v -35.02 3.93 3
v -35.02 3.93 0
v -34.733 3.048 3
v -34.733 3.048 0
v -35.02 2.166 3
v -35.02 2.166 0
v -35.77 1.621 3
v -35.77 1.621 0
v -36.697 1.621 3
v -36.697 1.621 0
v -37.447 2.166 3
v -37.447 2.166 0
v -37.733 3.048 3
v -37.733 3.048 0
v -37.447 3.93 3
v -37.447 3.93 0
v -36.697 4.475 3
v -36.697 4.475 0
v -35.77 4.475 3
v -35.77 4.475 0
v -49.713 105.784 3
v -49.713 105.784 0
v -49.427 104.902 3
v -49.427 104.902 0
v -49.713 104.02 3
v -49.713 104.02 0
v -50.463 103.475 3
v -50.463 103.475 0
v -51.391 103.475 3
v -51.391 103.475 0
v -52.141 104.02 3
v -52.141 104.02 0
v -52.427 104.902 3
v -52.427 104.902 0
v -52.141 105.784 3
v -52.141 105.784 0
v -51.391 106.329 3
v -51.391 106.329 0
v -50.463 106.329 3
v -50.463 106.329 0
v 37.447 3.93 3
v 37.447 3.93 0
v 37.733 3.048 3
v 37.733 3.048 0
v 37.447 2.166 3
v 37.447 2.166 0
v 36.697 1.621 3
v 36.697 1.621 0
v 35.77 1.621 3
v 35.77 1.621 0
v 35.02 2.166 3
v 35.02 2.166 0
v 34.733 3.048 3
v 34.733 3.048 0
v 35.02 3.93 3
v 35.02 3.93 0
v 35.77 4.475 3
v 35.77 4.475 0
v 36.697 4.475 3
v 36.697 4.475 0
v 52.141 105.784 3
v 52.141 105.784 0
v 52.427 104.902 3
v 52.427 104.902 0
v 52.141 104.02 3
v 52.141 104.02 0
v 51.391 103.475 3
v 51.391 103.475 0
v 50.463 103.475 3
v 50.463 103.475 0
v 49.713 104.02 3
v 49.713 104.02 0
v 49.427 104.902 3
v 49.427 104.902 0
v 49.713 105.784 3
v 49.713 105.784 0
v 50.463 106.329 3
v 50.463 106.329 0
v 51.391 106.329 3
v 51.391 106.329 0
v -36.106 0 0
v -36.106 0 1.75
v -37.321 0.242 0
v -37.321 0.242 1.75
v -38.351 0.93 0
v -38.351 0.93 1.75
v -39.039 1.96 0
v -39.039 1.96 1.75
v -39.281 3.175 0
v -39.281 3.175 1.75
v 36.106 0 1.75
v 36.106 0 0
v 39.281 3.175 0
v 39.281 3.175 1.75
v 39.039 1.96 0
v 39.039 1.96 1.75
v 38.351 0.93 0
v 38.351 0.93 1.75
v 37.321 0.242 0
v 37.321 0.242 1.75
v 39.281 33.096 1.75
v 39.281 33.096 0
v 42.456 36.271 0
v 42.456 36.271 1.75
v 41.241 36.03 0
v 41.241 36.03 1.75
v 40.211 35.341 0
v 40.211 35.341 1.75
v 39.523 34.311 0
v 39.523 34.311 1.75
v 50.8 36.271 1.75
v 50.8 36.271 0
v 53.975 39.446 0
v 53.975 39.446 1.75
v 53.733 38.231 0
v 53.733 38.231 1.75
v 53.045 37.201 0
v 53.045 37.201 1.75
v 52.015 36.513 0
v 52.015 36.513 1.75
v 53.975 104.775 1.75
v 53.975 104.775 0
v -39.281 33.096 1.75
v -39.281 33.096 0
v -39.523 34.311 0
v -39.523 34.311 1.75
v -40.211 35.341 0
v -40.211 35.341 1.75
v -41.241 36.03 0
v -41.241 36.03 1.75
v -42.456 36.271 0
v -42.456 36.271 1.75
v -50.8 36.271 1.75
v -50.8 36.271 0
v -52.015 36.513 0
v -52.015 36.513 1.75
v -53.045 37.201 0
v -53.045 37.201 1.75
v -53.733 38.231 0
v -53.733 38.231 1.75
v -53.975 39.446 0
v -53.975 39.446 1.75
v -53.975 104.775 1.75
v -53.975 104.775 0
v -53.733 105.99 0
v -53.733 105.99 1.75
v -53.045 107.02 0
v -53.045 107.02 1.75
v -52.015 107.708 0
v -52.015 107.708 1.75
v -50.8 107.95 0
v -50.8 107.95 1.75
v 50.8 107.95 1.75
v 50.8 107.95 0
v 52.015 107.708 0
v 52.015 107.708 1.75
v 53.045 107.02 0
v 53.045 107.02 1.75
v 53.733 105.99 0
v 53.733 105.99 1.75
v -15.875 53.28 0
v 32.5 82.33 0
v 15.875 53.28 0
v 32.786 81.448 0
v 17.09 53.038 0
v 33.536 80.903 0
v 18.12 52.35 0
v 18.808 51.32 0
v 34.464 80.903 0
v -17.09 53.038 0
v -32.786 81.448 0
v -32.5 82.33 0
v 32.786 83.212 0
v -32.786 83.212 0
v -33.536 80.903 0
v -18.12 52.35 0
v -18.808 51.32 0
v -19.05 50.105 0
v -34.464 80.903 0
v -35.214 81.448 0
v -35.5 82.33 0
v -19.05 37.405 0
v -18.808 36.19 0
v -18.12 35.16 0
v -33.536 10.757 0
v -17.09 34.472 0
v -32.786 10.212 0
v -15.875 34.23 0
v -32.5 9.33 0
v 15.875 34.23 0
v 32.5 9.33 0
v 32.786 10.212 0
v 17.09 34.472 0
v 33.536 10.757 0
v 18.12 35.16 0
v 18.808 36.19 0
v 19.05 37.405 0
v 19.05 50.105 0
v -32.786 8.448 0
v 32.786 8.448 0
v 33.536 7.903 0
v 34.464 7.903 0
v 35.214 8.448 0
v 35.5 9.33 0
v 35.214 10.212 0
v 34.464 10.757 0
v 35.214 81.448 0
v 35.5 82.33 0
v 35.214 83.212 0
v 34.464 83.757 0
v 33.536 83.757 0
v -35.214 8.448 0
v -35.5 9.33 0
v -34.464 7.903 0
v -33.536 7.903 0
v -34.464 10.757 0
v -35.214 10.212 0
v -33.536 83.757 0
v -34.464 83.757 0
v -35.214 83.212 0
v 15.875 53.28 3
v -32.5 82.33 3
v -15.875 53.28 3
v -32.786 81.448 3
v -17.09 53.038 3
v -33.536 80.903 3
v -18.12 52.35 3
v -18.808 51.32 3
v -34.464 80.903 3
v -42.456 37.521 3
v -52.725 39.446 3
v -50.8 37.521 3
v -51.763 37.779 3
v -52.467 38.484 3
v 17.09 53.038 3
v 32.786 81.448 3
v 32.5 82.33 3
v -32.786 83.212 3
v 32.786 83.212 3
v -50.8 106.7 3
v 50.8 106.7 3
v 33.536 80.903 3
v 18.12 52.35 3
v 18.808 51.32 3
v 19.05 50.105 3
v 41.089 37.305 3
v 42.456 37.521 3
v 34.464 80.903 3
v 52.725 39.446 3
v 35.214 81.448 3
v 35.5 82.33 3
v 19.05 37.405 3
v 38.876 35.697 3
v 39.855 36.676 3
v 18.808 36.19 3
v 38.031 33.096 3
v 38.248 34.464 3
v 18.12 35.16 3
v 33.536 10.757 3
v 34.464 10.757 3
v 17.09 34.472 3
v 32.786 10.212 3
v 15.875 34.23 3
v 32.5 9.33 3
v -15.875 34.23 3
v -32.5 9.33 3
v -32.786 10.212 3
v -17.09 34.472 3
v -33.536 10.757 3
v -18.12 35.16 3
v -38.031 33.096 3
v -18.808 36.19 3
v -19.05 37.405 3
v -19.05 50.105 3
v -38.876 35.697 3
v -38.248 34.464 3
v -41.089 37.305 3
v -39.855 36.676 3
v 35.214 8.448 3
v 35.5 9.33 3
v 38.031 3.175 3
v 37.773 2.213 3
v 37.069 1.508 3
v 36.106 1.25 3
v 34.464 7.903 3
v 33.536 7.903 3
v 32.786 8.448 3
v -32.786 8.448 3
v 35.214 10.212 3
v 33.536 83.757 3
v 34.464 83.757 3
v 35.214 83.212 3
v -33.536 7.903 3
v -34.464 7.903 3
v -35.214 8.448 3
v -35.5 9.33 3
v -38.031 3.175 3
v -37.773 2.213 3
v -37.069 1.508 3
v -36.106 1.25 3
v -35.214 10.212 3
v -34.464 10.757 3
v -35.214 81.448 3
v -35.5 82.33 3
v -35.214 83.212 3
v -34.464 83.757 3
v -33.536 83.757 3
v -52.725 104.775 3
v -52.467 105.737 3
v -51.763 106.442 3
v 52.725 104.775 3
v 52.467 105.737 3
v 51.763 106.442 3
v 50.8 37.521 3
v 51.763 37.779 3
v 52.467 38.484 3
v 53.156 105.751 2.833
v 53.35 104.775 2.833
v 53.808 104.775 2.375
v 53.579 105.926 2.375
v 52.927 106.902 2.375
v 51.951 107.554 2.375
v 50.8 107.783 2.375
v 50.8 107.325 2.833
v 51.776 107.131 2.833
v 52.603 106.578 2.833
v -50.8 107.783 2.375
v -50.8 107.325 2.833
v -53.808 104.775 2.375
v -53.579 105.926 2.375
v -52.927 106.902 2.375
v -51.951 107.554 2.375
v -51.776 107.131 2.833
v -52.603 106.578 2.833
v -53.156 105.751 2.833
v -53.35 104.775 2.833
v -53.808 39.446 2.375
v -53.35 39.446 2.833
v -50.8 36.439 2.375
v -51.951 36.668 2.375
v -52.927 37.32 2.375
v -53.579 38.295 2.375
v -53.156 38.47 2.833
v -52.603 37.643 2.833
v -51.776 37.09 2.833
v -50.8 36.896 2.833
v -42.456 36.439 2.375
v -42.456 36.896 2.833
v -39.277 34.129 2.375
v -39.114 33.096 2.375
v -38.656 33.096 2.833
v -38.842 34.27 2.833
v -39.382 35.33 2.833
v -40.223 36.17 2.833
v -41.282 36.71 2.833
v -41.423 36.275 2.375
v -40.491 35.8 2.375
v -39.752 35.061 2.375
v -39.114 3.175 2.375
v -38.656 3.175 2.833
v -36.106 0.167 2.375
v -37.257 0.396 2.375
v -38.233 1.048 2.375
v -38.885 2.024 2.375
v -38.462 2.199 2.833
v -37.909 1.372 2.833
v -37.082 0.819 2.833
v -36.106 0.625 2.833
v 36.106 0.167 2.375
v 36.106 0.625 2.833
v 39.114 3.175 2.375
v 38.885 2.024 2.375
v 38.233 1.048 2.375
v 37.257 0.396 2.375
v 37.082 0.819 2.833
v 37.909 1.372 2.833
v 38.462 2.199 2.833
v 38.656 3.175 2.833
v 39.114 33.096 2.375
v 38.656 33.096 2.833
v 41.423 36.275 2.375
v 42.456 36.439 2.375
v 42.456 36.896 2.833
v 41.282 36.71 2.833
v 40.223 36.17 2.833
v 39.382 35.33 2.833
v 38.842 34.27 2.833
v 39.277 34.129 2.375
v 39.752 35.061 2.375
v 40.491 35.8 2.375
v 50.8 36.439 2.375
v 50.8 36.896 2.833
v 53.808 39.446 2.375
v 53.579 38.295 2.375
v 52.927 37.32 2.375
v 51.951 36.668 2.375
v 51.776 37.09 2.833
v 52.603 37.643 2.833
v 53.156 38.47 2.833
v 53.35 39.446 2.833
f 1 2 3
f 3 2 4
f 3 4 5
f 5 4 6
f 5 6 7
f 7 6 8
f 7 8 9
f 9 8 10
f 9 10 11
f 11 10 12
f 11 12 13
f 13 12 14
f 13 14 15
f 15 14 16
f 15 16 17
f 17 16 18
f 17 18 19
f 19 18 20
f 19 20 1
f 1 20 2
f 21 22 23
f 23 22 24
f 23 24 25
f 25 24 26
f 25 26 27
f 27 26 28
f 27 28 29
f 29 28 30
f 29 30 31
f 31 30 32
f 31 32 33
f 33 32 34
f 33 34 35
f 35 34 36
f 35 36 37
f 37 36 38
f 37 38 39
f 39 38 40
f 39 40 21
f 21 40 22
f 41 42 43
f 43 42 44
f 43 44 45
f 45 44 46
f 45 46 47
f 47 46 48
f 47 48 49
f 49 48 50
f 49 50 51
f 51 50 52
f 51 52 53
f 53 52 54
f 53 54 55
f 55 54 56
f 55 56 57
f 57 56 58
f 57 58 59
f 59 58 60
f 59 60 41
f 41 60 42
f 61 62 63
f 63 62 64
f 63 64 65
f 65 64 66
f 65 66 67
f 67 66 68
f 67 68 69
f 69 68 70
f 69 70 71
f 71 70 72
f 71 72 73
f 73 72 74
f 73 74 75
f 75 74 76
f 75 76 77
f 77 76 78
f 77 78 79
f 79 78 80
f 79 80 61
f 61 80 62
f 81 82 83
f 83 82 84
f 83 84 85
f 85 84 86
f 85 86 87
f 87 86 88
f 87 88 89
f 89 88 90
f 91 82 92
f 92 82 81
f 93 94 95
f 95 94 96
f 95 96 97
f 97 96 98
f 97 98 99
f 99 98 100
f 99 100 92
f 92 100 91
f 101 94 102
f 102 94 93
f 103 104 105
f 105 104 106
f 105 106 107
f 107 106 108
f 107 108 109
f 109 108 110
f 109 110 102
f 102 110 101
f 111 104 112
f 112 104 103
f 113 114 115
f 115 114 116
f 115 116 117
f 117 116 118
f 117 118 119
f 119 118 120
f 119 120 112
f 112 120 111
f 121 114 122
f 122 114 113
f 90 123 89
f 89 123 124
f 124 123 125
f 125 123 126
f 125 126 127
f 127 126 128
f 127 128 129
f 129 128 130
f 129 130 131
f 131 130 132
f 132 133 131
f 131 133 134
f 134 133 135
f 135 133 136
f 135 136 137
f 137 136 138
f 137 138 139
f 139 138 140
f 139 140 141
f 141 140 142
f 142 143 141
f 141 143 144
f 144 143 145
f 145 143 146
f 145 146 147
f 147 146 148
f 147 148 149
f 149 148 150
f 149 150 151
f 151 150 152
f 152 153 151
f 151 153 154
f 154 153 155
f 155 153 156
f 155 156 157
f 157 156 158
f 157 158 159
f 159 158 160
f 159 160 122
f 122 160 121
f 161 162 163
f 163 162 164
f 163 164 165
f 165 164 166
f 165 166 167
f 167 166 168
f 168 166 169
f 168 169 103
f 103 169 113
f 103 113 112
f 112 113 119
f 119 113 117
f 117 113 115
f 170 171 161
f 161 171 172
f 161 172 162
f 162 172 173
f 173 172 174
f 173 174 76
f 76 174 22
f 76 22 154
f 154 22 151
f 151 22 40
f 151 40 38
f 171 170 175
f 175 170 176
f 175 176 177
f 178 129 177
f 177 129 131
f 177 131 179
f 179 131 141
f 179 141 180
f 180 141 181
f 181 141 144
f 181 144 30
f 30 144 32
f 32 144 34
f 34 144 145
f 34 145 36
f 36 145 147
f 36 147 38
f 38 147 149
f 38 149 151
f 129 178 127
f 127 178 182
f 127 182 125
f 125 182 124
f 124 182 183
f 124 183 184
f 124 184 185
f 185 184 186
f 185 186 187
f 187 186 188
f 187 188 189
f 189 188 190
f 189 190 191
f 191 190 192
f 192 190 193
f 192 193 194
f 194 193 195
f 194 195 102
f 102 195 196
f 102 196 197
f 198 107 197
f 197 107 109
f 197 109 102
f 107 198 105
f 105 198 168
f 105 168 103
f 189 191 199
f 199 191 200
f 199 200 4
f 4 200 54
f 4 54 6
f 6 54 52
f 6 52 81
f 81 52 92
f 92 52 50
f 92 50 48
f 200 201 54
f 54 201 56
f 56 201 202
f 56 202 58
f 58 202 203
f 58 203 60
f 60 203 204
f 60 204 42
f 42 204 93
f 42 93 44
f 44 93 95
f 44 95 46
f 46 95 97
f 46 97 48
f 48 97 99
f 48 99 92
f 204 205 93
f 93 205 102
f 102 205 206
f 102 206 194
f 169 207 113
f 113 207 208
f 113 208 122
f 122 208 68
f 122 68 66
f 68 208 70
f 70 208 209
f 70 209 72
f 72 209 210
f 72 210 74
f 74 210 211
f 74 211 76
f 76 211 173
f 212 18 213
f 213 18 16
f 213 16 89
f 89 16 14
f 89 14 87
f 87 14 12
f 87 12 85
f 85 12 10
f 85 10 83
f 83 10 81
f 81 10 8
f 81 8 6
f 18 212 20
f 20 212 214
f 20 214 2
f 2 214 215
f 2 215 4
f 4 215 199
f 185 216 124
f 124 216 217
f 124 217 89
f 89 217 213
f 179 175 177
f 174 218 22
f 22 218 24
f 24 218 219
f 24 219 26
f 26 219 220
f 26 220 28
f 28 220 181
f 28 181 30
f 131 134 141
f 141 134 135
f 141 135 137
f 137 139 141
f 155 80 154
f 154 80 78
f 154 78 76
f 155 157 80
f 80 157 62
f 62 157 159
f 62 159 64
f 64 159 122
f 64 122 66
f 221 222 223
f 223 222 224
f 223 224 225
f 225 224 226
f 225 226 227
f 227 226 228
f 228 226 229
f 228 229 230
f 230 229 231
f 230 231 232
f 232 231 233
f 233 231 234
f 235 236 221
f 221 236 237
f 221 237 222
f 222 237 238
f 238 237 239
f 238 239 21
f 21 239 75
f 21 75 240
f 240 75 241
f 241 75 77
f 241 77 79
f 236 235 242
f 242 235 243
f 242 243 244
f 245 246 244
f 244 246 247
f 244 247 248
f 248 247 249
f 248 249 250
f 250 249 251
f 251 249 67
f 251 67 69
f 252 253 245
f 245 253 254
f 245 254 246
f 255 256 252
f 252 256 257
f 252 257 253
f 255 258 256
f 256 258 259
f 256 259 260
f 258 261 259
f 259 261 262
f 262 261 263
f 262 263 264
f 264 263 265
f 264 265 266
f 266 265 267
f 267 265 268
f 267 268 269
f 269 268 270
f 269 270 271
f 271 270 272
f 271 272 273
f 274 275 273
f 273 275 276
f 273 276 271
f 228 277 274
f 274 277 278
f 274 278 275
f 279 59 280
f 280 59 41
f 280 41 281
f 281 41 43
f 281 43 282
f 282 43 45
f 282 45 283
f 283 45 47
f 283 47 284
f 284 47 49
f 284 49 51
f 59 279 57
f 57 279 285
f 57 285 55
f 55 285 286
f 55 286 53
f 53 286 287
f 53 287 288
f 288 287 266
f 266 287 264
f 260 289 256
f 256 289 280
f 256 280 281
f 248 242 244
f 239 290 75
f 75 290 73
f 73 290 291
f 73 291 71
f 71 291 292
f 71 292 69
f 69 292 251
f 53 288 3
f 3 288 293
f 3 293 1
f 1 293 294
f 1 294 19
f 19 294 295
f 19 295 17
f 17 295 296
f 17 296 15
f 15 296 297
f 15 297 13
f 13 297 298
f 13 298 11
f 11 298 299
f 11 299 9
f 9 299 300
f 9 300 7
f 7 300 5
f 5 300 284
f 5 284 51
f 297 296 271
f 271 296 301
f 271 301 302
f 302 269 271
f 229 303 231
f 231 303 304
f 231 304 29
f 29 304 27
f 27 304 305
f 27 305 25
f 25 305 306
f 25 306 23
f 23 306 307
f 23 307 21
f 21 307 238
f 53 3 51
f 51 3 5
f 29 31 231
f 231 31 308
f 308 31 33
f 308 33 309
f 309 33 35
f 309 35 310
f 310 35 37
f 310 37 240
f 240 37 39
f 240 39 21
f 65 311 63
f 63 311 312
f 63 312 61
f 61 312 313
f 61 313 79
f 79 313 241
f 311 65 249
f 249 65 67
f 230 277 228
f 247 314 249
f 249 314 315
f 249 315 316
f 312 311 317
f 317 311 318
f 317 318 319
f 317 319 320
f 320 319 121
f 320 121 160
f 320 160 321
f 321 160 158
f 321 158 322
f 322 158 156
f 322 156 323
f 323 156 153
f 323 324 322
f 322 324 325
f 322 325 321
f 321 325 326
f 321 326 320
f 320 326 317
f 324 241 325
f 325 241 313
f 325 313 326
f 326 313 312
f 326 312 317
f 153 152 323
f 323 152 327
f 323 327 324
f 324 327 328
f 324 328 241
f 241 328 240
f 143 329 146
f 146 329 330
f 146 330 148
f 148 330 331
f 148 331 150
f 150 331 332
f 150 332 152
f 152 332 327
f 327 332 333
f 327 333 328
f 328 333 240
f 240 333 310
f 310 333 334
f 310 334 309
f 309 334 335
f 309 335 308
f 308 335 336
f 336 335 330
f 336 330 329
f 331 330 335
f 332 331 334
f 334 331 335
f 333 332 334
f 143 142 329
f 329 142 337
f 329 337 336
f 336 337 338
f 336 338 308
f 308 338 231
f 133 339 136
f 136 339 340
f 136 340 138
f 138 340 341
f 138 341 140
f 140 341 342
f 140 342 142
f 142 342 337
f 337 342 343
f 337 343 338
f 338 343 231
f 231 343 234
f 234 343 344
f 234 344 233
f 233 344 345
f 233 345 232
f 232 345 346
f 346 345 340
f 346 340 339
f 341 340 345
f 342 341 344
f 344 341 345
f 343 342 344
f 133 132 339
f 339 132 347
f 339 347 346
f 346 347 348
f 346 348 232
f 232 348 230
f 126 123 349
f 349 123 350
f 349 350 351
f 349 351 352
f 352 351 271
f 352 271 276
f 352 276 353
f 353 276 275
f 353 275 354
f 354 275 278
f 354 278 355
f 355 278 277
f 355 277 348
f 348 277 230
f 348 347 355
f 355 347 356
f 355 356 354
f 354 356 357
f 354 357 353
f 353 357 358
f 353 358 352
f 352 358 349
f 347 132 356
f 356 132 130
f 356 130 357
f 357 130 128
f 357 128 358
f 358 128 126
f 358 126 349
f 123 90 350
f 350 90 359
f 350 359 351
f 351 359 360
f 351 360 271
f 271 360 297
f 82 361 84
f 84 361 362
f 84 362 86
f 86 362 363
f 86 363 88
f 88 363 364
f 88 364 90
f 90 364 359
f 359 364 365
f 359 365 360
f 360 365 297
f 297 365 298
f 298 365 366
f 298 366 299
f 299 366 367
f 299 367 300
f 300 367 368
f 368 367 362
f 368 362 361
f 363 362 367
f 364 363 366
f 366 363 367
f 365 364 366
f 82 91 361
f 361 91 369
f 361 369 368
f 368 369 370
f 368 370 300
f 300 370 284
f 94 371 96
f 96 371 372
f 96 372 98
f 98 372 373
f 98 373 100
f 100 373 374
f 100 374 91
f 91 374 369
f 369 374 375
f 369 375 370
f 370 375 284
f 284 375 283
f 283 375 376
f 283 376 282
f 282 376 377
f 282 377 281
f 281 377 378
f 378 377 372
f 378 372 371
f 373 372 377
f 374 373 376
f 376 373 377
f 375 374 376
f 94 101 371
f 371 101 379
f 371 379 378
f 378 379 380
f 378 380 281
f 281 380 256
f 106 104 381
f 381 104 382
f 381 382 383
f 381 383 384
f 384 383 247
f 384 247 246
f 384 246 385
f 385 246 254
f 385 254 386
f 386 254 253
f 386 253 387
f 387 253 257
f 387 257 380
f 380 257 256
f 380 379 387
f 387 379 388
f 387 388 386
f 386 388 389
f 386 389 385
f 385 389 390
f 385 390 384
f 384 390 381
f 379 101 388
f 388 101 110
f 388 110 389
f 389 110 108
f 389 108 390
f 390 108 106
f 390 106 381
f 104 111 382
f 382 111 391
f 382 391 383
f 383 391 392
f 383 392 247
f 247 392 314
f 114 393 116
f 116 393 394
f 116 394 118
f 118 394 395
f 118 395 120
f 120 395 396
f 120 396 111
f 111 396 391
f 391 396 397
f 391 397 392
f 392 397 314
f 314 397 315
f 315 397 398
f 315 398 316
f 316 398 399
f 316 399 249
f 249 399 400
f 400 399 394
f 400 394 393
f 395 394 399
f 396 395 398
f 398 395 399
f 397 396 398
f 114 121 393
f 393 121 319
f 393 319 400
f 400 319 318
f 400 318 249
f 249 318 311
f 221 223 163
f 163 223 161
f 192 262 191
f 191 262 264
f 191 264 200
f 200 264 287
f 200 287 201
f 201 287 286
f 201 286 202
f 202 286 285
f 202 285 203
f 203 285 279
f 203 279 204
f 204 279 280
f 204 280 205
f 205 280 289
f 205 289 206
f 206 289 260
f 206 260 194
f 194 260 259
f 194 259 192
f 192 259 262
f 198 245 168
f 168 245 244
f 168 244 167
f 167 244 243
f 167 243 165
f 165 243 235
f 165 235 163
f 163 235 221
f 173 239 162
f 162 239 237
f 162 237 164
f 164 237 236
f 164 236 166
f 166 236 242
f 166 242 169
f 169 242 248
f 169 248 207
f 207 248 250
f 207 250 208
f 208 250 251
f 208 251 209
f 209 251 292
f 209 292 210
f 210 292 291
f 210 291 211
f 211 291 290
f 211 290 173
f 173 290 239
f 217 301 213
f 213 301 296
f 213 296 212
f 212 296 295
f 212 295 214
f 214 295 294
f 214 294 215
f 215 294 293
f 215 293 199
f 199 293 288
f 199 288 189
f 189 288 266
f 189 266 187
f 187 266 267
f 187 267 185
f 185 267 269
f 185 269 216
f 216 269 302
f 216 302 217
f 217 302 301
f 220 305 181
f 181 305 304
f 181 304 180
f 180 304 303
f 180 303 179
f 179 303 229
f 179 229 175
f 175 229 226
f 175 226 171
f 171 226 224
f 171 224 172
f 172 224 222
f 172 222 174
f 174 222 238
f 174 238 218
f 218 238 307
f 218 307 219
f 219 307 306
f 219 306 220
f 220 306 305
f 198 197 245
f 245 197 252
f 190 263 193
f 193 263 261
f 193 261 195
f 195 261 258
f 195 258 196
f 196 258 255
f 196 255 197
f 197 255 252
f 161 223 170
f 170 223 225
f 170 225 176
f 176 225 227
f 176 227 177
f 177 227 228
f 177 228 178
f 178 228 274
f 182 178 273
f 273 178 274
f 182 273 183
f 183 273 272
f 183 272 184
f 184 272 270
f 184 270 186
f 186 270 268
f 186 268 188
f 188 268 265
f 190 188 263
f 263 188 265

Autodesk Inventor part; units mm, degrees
ref_plane "YZ Plane" through (0, 0, 0) normal (1, 0, 0) x (0, 1, 0)
ref_plane "XZ Plane" through (0, 0, 0) normal (0, 1, 0) x (-1, 0, 0)
ref_plane "XY Plane" through (0, 0, 0) normal (0, 0, 1) x (1, 0, 0)
sketch "Sketch1" plane through (0, 0, 0) normal (0, 0, 1) x (1, 0, 0)
  arc A0 (-50.8, 107.95) -> (-53.975, 104.775) centre (-50.8, 104.775) ccw
  line L0 (-53.975, 104.775) -> (-53.975, 39.4462)
  arc A1 (-53.975, 39.4462) -> (-50.8, 36.2712) centre (-50.8, 39.4462) ccw
  line L1 (-50.8, 36.2712) -> (-42.4561, 36.2712)
  arc A2 (-39.2811, 33.0962) -> (-42.4561, 36.2712) centre (-42.4561, 33.0962) ccw
  line L2 (-39.2811, 33.0962) -> (-39.2811, 3.175)
  arc A3 (-39.2811, 3.175) -> (-36.1061, 0) centre (-36.1061, 3.175) ccw
  line L3 (-36.1061, 0) -> (36.1061, 0)
  arc A4 (36.1061, 0) -> (39.2811, 3.175) centre (36.1061, 3.175) ccw
  line L4 (39.2811, 3.175) -> (39.2811, 33.0962)
  arc A5 (42.4561, 36.2712) -> (39.2811, 33.0962) centre (42.4561, 33.0962) ccw
  line L5 (42.4561, 36.2712) -> (50.8, 36.2712)
  arc A6 (50.8, 36.2712) -> (53.975, 39.4462) centre (50.8, 39.4462) ccw
  line L6 (53.975, 39.4462) -> (53.975, 104.775)
  arc A7 (53.975, 104.775) -> (50.8, 107.95) centre (50.8, 104.775) ccw
  line L7 (50.8, 107.95) -> (-50.8, 107.95)
  arc A8 (39.4081, 39.3192) -> (36.2331, 36.1442) centre (39.4081, 36.1442) ccw
  line L8 (36.2331, 36.1442) -> (36.2331, 9.271)
  arc A9 (33.0581, 6.096) -> (36.2331, 9.271) centre (33.0581, 9.271) ccw
  line L9 (33.0581, 6.096) -> (-33.0581, 6.096)
  arc A10 (-36.2331, 9.271) -> (-33.0581, 6.096) centre (-33.0581, 9.271) ccw
  line L10 (-36.2331, 9.271) -> (-36.2331, 36.1442)
  arc A11 (-36.2331, 36.1442) -> (-39.4081, 39.3192) centre (-39.4081, 36.1442) ccw
  line L11 (-39.4081, 39.3192) -> (-47.752, 39.3192)
  arc A12 (-50.927, 42.4942) -> (-47.752, 39.3192) centre (-47.752, 42.4942) ccw
  line L12 (-50.927, 42.4942) -> (-50.927, 98.679)
  arc A13 (-47.752, 101.854) -> (-50.927, 98.679) centre (-47.752, 98.679) ccw
  line L13 (-47.752, 101.854) -> (47.752, 101.854)
  arc A14 (50.927, 98.679) -> (47.752, 101.854) centre (47.752, 98.679) ccw
  line L14 (50.927, 98.679) -> (50.927, 42.4942)
  arc A15 (47.752, 39.3192) -> (50.927, 42.4942) centre (47.752, 42.4942) ccw
  line L15 (47.752, 39.3192) -> (39.4081, 39.3192)
  circle A16 centre (-50.927, 104.902) radius 1.5
  circle A17 centre (36.2331, 3.048) radius 1.5
  circle A18 centre (-36.2331, 3.048) radius 1.5
  circle A19 centre (50.927, 104.902) radius 1.5
  line L16 (0, 0) -> (0, -19.0308)
extrude "Extrusion1" add sketch "Sketch1" along normal blind 3 contours L7 A7 L6 A6 L5 A5 L4 A4 L3 A3 L2 A2 L1 A1 L0 A0 | A8 L8 A9 L9 A10 L10 A11 L11 A12 L12 A13 L13 A14 L14 A15 L15
fillet "Fillet1" radius 1.25 16 edges at (53.0451, 107.0201, 3) (0, 107.95, 3) (-53.0451, 107.0201, 3) (-53.975, 72.1106, 3) (-53.0451, 37.2011, 3) (-46.6281, 36.2712, 3) (-40.211, 35.3413, 3) (-39.2811, 18.1356, 3) (-38.3512, 0.9299, 3) (0, 0, 3) (38.3512, 0.9299, 3) (39.2811, 18.1356, 3) (40.211, 35.3413, 3) (46.6281, 36.2712, 3) (53.0451, 37.2011, 3) (53.975, 72.1106, 3)
sketch "Sketch2" plane through (0, 0, 3) normal (0, 0, 1) x (1, 0, 0)
  arc A0 (-30.9142, 9.83) -> (-32.3284, 10.83) centre (-32.3284, 9.33) ccw
  line L0 (-32.5, 10.83) -> (-32.3284, 10.83)
  line L1 (-32.5, 80.83) -> (-32.5, 10.83)
  line L2 (32.5, 80.83) -> (-32.5, 80.83)
  line L3 (32.5, 10.83) -> (32.5, 80.83)
  line L4 (32.3284, 10.83) -> (32.5, 10.83)
  arc A1 (32.3284, 10.83) -> (30.9142, 9.83) centre (32.3284, 9.33) ccw
  arc A2 (29.5, 8.83) -> (30.9142, 9.83) centre (29.5, 10.33) ccw
  line L5 (29.5, 8.83) -> (-29.5, 8.83)
  arc A3 (-30.9142, 9.83) -> (-29.5, 8.83) centre (-29.5, 10.33) ccw
  arc A4 (-35, 85.33) -> (-37, 83.33) centre (-35, 83.33) ccw
  line L6 (-37, 8.33) -> (-37, 83.33)
  arc A5 (-37, 8.33) -> (-35, 6.33) centre (-35, 8.33) ccw
  line L7 (35, 6.33) -> (-35, 6.33)
  arc A6 (35, 6.33) -> (37, 8.33) centre (35, 8.33) ccw
  line L8 (37, 83.33) -> (37, 8.33)
  arc A7 (37, 83.33) -> (35, 85.33) centre (35, 83.33) ccw
  line L9 (-35, 85.33) -> (35, 85.33)
  circle A8 centre (34, 82.33) radius 1.5
  circle A9 centre (-34, 82.33) radius 1.5
  circle A10 centre (-34, 9.33) radius 1.5
  circle A11 centre (34, 9.33) radius 1.5
  line L10 (36.1061, 1.25) -> (-36.1061, 1.25) projected
  line L11 (0, 6.33) -> (0, -2.8147)
  line L12 (0, 1.25) -> (0, 6.33)
  line L13 (0, 8.83) -> (0, 34.23)
  line L14 (0, 34.23) -> (-19.05, 34.23)
  line L15 (-19.05, 34.23) -> (-19.05, 53.28)
  line L16 (-19.05, 53.28) -> (19.05, 53.28)
  line L17 (19.05, 53.28) -> (19.05, 34.23)
  line L18 (19.05, 34.23) -> (0, 34.23)
  point P0 (0, 0)
  point P1 (0, 67.33)
  dimension "d4" = 5.08
  dimension "d5" = 25.4
  dimension "d6" = 19.05
  dimension "d7" = 19.05
  dimension "d8" = 38.1
  dimension "d9" = 19.05
extrude "Extrusion2" cut sketch "Sketch2" against normal through all contours L14 L15 L16 L17 L18 | A8 | A9 | A10 | A11
fillet "Fillet2" radius 3.175 4 edges at (-19.05, 53.28, 1.5) (-19.05, 34.23, 1.5) (19.05, 34.23, 1.5) (19.05, 53.28, 1.5)
properties part number "bit bot lid 1"
